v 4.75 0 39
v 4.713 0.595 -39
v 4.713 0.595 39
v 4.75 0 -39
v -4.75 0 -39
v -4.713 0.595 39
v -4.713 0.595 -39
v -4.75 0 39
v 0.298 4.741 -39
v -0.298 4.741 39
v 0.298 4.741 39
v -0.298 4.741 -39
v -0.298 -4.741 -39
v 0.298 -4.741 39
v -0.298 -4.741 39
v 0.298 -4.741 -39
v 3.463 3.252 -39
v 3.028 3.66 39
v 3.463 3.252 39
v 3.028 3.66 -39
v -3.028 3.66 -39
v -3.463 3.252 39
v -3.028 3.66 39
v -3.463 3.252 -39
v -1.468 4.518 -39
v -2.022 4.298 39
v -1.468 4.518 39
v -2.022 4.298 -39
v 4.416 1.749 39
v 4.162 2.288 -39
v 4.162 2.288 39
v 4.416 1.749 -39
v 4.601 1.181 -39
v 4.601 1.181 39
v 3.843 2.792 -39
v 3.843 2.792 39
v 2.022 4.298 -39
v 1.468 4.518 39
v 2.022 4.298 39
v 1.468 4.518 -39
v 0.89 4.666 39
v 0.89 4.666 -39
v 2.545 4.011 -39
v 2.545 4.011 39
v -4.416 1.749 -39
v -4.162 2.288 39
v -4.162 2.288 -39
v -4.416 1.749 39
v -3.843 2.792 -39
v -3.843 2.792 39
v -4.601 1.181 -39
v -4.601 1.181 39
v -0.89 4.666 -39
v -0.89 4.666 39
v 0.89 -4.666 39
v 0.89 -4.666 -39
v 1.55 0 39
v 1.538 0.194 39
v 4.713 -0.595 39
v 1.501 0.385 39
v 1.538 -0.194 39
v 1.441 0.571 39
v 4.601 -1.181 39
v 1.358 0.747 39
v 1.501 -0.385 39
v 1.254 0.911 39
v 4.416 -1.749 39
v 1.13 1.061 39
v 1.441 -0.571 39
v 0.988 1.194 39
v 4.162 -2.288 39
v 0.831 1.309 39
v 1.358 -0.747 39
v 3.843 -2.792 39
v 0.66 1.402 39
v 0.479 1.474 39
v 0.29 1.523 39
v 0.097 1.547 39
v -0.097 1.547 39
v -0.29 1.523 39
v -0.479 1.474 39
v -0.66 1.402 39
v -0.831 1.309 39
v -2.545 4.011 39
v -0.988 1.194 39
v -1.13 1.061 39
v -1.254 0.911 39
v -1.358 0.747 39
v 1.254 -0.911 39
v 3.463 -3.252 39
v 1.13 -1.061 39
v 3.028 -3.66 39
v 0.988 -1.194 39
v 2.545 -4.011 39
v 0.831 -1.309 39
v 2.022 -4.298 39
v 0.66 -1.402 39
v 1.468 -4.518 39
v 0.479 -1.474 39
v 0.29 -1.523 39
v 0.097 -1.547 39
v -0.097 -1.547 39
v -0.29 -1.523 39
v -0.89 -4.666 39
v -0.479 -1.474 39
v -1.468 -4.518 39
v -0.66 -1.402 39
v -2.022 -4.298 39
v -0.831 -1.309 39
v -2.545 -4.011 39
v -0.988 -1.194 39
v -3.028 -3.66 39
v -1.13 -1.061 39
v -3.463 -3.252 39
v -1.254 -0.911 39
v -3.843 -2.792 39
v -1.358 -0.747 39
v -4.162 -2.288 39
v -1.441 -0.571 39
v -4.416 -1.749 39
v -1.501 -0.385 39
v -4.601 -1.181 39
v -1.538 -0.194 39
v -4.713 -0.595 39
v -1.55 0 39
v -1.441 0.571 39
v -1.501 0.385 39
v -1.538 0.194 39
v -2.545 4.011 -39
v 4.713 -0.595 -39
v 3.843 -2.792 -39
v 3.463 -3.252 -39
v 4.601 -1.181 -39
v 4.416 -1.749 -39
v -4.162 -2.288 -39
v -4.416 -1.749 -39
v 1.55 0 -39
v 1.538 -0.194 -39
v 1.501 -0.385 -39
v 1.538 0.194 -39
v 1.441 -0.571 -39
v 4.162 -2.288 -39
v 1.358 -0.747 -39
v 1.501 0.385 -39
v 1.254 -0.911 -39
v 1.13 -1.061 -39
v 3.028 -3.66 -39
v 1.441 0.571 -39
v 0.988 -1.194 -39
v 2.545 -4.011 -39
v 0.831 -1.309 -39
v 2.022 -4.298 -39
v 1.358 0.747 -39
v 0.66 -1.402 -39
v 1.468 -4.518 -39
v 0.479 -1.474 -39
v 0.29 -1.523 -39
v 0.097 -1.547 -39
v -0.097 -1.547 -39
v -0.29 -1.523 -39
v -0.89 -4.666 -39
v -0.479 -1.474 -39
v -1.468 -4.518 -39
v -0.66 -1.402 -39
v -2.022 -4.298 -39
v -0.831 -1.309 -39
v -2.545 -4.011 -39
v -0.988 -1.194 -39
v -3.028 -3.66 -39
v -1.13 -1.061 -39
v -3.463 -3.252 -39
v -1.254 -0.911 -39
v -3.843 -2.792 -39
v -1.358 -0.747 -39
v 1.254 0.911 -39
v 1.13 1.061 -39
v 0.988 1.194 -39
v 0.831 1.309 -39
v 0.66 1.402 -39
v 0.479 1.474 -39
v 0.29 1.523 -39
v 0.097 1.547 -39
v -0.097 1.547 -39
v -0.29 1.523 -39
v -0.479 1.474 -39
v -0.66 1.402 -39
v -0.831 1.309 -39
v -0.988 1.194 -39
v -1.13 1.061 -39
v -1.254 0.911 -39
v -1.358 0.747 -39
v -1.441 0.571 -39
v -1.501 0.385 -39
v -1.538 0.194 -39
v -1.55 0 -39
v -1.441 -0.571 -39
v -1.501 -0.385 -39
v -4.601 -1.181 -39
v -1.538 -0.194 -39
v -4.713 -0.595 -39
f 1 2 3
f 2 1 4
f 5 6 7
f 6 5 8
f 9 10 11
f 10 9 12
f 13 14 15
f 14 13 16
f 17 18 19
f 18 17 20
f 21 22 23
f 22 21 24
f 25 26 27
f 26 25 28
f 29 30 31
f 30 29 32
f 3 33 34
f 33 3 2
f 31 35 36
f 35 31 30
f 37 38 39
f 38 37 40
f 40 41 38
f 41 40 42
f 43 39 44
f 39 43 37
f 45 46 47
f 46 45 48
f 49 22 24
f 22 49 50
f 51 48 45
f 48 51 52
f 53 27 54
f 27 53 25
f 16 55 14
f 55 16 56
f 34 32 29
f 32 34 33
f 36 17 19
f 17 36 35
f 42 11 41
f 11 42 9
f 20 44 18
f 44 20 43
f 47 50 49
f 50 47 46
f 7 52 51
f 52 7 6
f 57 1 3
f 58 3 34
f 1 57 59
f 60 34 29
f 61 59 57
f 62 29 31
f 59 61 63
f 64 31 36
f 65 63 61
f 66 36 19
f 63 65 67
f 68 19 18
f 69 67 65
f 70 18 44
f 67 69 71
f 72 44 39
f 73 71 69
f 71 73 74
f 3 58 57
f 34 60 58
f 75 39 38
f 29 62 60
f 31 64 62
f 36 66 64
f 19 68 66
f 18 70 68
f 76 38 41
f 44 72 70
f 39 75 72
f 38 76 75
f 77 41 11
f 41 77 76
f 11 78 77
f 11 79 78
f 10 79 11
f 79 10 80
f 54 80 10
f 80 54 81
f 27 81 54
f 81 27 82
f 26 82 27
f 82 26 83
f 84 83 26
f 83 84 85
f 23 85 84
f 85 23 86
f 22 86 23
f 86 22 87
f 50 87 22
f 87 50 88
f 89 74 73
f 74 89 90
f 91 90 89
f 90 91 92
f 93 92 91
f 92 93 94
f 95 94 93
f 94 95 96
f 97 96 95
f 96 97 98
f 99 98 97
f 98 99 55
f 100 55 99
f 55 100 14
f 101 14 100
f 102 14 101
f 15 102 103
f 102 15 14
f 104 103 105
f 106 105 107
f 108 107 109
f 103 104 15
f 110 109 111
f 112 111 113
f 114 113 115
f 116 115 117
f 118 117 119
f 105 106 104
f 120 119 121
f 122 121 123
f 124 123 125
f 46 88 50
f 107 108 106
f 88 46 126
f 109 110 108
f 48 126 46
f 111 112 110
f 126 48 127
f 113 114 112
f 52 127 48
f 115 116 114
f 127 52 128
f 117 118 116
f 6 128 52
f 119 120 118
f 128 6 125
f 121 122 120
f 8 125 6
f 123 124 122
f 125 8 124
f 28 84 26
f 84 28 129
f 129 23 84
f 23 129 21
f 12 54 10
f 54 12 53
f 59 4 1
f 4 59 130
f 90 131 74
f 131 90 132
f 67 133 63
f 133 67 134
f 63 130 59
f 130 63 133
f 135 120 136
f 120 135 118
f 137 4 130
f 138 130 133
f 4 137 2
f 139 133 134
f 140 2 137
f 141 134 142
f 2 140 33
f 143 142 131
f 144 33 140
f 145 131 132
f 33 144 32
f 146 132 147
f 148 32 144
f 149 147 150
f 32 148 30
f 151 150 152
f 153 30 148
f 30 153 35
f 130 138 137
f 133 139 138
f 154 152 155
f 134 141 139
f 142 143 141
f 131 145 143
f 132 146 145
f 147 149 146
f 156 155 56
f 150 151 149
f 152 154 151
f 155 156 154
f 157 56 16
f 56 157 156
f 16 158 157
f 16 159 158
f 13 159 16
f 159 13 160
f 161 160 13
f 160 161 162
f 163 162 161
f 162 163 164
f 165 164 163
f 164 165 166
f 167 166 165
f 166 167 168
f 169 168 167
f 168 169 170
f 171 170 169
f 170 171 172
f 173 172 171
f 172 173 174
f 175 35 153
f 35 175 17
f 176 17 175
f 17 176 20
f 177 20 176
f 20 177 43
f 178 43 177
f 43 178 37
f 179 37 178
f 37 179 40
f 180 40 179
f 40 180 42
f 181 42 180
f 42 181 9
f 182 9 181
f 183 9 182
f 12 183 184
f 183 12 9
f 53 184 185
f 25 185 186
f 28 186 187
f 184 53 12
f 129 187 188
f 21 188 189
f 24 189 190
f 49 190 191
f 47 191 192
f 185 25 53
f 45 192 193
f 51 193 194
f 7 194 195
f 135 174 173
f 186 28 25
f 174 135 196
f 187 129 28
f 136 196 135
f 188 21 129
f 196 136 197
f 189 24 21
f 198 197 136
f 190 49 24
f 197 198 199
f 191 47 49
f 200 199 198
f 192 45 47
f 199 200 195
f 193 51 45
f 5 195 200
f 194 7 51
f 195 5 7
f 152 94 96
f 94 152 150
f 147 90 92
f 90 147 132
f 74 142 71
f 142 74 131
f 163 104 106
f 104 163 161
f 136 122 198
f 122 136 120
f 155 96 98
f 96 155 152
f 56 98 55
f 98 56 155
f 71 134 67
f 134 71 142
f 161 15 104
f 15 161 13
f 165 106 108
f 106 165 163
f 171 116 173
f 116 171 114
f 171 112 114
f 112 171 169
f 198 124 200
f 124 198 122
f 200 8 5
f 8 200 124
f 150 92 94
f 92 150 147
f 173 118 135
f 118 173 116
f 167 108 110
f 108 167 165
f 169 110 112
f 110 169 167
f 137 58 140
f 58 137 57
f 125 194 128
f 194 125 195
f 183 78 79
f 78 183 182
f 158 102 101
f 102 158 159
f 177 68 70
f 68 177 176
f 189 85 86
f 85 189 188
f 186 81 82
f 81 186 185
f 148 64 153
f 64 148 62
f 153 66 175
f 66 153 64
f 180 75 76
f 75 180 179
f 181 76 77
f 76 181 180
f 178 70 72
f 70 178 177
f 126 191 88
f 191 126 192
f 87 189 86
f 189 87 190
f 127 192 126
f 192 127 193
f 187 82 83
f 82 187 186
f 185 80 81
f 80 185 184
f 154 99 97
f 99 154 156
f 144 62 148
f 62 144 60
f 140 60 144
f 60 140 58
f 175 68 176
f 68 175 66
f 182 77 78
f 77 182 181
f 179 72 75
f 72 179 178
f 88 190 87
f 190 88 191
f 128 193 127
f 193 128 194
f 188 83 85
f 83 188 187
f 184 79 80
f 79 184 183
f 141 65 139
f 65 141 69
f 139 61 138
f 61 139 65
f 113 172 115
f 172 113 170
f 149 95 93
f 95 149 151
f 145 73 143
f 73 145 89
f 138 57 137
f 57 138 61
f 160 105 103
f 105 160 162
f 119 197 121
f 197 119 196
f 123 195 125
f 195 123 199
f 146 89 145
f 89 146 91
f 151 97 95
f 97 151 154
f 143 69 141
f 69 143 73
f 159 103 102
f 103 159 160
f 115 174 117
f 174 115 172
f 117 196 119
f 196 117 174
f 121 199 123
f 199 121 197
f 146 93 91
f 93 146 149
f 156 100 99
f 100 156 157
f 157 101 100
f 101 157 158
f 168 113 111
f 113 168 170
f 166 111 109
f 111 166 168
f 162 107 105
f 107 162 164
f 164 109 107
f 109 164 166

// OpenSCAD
$fn = 50;


difference() {
	union() {
		translate(v = [0, 0, -39.0000000000]) {
			cylinder(h = 78, r = 4.7500000000);
		}
	}
	union() {
		translate(v = [0, 0, -100.0000000000]) {
			cylinder(h = 200, r = 1.5500000000);
		}
	}
}
